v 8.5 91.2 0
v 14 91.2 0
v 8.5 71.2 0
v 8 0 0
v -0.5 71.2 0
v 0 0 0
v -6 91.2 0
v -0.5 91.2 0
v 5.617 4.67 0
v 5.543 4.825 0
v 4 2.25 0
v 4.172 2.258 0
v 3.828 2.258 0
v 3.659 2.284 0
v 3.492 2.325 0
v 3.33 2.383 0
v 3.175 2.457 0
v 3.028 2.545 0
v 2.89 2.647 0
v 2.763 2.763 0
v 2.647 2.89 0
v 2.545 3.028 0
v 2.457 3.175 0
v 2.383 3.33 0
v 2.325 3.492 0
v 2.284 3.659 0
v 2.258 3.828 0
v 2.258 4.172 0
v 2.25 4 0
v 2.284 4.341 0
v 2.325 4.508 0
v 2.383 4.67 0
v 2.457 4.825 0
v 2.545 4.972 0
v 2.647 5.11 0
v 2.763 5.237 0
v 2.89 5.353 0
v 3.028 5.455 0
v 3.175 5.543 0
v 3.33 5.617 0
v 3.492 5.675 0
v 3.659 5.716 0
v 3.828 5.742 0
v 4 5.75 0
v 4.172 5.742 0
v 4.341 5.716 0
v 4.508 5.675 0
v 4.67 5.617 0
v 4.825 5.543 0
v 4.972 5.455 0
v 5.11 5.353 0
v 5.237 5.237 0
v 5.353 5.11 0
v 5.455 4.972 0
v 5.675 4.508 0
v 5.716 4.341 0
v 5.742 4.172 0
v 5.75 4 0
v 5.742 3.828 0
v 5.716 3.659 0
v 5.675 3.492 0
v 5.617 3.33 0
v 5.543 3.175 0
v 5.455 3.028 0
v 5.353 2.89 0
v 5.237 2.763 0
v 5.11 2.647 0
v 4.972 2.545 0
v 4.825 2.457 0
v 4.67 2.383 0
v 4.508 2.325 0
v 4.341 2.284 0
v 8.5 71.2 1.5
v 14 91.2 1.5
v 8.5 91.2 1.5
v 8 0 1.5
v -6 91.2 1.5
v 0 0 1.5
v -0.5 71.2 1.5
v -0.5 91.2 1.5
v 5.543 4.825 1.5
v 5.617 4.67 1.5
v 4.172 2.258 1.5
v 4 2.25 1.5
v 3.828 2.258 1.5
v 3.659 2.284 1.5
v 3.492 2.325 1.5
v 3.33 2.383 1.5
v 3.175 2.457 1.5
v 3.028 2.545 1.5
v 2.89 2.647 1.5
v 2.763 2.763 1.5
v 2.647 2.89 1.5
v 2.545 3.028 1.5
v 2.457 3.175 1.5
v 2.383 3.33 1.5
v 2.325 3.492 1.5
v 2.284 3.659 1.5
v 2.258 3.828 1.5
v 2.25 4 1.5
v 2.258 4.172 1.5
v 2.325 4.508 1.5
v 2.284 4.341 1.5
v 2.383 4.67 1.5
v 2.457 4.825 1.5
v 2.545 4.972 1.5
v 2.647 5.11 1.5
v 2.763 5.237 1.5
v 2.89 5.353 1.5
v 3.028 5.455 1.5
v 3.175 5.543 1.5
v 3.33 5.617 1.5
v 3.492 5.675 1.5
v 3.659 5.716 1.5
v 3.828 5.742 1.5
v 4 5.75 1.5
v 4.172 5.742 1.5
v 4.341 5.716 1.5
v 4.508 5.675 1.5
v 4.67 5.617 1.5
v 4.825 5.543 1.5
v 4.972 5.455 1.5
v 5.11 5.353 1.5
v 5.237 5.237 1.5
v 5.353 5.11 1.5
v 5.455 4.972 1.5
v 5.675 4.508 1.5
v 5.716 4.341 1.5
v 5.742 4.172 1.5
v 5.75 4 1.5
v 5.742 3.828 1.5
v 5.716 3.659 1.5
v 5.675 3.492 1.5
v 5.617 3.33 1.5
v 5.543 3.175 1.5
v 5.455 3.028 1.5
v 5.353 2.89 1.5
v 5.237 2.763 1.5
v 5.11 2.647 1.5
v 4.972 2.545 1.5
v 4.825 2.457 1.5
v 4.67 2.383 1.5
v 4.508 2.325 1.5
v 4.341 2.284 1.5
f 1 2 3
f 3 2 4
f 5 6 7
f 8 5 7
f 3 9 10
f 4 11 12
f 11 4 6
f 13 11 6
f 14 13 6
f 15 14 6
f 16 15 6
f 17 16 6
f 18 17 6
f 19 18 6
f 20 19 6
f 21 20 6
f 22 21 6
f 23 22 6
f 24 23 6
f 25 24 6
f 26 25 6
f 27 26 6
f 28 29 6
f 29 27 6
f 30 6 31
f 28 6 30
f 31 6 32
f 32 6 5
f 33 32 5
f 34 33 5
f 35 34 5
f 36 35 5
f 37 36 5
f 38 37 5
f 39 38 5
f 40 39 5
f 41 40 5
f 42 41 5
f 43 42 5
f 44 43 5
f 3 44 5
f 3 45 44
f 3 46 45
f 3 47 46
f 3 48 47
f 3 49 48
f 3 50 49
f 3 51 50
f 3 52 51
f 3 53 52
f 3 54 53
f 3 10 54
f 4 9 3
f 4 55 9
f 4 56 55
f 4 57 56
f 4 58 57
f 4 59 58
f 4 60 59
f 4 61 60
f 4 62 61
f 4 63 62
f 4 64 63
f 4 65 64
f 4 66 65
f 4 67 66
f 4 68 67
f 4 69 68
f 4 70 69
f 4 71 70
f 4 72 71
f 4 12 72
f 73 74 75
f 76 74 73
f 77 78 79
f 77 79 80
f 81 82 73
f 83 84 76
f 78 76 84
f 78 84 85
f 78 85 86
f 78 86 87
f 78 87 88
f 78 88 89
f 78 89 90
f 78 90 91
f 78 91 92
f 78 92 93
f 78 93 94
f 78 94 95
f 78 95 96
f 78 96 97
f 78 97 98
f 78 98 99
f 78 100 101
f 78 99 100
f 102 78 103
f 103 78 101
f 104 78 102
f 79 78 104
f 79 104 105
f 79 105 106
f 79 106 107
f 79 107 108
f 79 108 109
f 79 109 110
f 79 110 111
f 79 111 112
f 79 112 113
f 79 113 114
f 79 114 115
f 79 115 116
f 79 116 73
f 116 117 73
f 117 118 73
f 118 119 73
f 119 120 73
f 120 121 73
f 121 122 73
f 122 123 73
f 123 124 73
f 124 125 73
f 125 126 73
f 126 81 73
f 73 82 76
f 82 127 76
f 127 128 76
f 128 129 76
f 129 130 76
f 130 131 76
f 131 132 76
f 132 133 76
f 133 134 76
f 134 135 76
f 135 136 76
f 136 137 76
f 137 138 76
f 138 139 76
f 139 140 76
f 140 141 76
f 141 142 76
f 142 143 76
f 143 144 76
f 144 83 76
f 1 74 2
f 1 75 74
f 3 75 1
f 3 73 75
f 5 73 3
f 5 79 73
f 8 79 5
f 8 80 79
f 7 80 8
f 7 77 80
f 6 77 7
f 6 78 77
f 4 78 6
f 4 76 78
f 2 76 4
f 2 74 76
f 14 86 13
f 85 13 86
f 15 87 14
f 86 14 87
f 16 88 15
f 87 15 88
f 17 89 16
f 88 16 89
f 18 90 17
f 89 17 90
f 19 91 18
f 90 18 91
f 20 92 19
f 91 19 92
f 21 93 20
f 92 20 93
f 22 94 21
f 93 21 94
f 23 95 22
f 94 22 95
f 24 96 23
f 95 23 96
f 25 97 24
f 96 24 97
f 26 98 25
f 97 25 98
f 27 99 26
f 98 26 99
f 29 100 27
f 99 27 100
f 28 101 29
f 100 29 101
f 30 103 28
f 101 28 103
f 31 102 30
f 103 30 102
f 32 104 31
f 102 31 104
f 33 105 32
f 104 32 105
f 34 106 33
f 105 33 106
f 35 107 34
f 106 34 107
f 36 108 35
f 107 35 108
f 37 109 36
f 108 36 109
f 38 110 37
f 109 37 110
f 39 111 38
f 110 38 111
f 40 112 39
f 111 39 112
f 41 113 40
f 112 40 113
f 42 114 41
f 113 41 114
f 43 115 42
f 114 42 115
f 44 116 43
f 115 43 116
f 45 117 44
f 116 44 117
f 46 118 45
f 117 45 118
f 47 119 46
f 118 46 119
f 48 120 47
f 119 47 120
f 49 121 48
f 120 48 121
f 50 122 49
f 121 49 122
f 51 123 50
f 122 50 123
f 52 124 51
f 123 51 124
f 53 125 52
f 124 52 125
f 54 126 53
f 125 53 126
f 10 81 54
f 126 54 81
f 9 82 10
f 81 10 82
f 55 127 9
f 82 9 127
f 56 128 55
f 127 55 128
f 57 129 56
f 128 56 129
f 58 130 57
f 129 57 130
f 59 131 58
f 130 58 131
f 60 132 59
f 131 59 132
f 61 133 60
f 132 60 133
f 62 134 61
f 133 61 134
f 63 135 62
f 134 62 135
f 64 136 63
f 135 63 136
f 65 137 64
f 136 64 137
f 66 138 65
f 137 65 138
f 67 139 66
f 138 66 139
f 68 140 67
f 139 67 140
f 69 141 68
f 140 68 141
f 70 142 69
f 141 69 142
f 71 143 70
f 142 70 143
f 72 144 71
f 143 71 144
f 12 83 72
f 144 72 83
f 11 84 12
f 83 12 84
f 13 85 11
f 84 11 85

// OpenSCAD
x = 8;
x2 = 20;
y = 9;
z = 20;
d = 91.2;
prumer = 3.5;
$fn = 64;

linear_extrude(1.5)
difference() {
    union() {
        polygon(
        [
           [x,0],
           [0,0],
           [-(x2-x)/2,d],
           [x2-(x2-x)/2,d]
        ]
        );
        
    }
    
    union() {
        
        translate([x / 2, x /2])
            circle(d = prumer);
        
        
        translate([x / 2 - y/2, d-z])
            square([y, z]);
    }
}
